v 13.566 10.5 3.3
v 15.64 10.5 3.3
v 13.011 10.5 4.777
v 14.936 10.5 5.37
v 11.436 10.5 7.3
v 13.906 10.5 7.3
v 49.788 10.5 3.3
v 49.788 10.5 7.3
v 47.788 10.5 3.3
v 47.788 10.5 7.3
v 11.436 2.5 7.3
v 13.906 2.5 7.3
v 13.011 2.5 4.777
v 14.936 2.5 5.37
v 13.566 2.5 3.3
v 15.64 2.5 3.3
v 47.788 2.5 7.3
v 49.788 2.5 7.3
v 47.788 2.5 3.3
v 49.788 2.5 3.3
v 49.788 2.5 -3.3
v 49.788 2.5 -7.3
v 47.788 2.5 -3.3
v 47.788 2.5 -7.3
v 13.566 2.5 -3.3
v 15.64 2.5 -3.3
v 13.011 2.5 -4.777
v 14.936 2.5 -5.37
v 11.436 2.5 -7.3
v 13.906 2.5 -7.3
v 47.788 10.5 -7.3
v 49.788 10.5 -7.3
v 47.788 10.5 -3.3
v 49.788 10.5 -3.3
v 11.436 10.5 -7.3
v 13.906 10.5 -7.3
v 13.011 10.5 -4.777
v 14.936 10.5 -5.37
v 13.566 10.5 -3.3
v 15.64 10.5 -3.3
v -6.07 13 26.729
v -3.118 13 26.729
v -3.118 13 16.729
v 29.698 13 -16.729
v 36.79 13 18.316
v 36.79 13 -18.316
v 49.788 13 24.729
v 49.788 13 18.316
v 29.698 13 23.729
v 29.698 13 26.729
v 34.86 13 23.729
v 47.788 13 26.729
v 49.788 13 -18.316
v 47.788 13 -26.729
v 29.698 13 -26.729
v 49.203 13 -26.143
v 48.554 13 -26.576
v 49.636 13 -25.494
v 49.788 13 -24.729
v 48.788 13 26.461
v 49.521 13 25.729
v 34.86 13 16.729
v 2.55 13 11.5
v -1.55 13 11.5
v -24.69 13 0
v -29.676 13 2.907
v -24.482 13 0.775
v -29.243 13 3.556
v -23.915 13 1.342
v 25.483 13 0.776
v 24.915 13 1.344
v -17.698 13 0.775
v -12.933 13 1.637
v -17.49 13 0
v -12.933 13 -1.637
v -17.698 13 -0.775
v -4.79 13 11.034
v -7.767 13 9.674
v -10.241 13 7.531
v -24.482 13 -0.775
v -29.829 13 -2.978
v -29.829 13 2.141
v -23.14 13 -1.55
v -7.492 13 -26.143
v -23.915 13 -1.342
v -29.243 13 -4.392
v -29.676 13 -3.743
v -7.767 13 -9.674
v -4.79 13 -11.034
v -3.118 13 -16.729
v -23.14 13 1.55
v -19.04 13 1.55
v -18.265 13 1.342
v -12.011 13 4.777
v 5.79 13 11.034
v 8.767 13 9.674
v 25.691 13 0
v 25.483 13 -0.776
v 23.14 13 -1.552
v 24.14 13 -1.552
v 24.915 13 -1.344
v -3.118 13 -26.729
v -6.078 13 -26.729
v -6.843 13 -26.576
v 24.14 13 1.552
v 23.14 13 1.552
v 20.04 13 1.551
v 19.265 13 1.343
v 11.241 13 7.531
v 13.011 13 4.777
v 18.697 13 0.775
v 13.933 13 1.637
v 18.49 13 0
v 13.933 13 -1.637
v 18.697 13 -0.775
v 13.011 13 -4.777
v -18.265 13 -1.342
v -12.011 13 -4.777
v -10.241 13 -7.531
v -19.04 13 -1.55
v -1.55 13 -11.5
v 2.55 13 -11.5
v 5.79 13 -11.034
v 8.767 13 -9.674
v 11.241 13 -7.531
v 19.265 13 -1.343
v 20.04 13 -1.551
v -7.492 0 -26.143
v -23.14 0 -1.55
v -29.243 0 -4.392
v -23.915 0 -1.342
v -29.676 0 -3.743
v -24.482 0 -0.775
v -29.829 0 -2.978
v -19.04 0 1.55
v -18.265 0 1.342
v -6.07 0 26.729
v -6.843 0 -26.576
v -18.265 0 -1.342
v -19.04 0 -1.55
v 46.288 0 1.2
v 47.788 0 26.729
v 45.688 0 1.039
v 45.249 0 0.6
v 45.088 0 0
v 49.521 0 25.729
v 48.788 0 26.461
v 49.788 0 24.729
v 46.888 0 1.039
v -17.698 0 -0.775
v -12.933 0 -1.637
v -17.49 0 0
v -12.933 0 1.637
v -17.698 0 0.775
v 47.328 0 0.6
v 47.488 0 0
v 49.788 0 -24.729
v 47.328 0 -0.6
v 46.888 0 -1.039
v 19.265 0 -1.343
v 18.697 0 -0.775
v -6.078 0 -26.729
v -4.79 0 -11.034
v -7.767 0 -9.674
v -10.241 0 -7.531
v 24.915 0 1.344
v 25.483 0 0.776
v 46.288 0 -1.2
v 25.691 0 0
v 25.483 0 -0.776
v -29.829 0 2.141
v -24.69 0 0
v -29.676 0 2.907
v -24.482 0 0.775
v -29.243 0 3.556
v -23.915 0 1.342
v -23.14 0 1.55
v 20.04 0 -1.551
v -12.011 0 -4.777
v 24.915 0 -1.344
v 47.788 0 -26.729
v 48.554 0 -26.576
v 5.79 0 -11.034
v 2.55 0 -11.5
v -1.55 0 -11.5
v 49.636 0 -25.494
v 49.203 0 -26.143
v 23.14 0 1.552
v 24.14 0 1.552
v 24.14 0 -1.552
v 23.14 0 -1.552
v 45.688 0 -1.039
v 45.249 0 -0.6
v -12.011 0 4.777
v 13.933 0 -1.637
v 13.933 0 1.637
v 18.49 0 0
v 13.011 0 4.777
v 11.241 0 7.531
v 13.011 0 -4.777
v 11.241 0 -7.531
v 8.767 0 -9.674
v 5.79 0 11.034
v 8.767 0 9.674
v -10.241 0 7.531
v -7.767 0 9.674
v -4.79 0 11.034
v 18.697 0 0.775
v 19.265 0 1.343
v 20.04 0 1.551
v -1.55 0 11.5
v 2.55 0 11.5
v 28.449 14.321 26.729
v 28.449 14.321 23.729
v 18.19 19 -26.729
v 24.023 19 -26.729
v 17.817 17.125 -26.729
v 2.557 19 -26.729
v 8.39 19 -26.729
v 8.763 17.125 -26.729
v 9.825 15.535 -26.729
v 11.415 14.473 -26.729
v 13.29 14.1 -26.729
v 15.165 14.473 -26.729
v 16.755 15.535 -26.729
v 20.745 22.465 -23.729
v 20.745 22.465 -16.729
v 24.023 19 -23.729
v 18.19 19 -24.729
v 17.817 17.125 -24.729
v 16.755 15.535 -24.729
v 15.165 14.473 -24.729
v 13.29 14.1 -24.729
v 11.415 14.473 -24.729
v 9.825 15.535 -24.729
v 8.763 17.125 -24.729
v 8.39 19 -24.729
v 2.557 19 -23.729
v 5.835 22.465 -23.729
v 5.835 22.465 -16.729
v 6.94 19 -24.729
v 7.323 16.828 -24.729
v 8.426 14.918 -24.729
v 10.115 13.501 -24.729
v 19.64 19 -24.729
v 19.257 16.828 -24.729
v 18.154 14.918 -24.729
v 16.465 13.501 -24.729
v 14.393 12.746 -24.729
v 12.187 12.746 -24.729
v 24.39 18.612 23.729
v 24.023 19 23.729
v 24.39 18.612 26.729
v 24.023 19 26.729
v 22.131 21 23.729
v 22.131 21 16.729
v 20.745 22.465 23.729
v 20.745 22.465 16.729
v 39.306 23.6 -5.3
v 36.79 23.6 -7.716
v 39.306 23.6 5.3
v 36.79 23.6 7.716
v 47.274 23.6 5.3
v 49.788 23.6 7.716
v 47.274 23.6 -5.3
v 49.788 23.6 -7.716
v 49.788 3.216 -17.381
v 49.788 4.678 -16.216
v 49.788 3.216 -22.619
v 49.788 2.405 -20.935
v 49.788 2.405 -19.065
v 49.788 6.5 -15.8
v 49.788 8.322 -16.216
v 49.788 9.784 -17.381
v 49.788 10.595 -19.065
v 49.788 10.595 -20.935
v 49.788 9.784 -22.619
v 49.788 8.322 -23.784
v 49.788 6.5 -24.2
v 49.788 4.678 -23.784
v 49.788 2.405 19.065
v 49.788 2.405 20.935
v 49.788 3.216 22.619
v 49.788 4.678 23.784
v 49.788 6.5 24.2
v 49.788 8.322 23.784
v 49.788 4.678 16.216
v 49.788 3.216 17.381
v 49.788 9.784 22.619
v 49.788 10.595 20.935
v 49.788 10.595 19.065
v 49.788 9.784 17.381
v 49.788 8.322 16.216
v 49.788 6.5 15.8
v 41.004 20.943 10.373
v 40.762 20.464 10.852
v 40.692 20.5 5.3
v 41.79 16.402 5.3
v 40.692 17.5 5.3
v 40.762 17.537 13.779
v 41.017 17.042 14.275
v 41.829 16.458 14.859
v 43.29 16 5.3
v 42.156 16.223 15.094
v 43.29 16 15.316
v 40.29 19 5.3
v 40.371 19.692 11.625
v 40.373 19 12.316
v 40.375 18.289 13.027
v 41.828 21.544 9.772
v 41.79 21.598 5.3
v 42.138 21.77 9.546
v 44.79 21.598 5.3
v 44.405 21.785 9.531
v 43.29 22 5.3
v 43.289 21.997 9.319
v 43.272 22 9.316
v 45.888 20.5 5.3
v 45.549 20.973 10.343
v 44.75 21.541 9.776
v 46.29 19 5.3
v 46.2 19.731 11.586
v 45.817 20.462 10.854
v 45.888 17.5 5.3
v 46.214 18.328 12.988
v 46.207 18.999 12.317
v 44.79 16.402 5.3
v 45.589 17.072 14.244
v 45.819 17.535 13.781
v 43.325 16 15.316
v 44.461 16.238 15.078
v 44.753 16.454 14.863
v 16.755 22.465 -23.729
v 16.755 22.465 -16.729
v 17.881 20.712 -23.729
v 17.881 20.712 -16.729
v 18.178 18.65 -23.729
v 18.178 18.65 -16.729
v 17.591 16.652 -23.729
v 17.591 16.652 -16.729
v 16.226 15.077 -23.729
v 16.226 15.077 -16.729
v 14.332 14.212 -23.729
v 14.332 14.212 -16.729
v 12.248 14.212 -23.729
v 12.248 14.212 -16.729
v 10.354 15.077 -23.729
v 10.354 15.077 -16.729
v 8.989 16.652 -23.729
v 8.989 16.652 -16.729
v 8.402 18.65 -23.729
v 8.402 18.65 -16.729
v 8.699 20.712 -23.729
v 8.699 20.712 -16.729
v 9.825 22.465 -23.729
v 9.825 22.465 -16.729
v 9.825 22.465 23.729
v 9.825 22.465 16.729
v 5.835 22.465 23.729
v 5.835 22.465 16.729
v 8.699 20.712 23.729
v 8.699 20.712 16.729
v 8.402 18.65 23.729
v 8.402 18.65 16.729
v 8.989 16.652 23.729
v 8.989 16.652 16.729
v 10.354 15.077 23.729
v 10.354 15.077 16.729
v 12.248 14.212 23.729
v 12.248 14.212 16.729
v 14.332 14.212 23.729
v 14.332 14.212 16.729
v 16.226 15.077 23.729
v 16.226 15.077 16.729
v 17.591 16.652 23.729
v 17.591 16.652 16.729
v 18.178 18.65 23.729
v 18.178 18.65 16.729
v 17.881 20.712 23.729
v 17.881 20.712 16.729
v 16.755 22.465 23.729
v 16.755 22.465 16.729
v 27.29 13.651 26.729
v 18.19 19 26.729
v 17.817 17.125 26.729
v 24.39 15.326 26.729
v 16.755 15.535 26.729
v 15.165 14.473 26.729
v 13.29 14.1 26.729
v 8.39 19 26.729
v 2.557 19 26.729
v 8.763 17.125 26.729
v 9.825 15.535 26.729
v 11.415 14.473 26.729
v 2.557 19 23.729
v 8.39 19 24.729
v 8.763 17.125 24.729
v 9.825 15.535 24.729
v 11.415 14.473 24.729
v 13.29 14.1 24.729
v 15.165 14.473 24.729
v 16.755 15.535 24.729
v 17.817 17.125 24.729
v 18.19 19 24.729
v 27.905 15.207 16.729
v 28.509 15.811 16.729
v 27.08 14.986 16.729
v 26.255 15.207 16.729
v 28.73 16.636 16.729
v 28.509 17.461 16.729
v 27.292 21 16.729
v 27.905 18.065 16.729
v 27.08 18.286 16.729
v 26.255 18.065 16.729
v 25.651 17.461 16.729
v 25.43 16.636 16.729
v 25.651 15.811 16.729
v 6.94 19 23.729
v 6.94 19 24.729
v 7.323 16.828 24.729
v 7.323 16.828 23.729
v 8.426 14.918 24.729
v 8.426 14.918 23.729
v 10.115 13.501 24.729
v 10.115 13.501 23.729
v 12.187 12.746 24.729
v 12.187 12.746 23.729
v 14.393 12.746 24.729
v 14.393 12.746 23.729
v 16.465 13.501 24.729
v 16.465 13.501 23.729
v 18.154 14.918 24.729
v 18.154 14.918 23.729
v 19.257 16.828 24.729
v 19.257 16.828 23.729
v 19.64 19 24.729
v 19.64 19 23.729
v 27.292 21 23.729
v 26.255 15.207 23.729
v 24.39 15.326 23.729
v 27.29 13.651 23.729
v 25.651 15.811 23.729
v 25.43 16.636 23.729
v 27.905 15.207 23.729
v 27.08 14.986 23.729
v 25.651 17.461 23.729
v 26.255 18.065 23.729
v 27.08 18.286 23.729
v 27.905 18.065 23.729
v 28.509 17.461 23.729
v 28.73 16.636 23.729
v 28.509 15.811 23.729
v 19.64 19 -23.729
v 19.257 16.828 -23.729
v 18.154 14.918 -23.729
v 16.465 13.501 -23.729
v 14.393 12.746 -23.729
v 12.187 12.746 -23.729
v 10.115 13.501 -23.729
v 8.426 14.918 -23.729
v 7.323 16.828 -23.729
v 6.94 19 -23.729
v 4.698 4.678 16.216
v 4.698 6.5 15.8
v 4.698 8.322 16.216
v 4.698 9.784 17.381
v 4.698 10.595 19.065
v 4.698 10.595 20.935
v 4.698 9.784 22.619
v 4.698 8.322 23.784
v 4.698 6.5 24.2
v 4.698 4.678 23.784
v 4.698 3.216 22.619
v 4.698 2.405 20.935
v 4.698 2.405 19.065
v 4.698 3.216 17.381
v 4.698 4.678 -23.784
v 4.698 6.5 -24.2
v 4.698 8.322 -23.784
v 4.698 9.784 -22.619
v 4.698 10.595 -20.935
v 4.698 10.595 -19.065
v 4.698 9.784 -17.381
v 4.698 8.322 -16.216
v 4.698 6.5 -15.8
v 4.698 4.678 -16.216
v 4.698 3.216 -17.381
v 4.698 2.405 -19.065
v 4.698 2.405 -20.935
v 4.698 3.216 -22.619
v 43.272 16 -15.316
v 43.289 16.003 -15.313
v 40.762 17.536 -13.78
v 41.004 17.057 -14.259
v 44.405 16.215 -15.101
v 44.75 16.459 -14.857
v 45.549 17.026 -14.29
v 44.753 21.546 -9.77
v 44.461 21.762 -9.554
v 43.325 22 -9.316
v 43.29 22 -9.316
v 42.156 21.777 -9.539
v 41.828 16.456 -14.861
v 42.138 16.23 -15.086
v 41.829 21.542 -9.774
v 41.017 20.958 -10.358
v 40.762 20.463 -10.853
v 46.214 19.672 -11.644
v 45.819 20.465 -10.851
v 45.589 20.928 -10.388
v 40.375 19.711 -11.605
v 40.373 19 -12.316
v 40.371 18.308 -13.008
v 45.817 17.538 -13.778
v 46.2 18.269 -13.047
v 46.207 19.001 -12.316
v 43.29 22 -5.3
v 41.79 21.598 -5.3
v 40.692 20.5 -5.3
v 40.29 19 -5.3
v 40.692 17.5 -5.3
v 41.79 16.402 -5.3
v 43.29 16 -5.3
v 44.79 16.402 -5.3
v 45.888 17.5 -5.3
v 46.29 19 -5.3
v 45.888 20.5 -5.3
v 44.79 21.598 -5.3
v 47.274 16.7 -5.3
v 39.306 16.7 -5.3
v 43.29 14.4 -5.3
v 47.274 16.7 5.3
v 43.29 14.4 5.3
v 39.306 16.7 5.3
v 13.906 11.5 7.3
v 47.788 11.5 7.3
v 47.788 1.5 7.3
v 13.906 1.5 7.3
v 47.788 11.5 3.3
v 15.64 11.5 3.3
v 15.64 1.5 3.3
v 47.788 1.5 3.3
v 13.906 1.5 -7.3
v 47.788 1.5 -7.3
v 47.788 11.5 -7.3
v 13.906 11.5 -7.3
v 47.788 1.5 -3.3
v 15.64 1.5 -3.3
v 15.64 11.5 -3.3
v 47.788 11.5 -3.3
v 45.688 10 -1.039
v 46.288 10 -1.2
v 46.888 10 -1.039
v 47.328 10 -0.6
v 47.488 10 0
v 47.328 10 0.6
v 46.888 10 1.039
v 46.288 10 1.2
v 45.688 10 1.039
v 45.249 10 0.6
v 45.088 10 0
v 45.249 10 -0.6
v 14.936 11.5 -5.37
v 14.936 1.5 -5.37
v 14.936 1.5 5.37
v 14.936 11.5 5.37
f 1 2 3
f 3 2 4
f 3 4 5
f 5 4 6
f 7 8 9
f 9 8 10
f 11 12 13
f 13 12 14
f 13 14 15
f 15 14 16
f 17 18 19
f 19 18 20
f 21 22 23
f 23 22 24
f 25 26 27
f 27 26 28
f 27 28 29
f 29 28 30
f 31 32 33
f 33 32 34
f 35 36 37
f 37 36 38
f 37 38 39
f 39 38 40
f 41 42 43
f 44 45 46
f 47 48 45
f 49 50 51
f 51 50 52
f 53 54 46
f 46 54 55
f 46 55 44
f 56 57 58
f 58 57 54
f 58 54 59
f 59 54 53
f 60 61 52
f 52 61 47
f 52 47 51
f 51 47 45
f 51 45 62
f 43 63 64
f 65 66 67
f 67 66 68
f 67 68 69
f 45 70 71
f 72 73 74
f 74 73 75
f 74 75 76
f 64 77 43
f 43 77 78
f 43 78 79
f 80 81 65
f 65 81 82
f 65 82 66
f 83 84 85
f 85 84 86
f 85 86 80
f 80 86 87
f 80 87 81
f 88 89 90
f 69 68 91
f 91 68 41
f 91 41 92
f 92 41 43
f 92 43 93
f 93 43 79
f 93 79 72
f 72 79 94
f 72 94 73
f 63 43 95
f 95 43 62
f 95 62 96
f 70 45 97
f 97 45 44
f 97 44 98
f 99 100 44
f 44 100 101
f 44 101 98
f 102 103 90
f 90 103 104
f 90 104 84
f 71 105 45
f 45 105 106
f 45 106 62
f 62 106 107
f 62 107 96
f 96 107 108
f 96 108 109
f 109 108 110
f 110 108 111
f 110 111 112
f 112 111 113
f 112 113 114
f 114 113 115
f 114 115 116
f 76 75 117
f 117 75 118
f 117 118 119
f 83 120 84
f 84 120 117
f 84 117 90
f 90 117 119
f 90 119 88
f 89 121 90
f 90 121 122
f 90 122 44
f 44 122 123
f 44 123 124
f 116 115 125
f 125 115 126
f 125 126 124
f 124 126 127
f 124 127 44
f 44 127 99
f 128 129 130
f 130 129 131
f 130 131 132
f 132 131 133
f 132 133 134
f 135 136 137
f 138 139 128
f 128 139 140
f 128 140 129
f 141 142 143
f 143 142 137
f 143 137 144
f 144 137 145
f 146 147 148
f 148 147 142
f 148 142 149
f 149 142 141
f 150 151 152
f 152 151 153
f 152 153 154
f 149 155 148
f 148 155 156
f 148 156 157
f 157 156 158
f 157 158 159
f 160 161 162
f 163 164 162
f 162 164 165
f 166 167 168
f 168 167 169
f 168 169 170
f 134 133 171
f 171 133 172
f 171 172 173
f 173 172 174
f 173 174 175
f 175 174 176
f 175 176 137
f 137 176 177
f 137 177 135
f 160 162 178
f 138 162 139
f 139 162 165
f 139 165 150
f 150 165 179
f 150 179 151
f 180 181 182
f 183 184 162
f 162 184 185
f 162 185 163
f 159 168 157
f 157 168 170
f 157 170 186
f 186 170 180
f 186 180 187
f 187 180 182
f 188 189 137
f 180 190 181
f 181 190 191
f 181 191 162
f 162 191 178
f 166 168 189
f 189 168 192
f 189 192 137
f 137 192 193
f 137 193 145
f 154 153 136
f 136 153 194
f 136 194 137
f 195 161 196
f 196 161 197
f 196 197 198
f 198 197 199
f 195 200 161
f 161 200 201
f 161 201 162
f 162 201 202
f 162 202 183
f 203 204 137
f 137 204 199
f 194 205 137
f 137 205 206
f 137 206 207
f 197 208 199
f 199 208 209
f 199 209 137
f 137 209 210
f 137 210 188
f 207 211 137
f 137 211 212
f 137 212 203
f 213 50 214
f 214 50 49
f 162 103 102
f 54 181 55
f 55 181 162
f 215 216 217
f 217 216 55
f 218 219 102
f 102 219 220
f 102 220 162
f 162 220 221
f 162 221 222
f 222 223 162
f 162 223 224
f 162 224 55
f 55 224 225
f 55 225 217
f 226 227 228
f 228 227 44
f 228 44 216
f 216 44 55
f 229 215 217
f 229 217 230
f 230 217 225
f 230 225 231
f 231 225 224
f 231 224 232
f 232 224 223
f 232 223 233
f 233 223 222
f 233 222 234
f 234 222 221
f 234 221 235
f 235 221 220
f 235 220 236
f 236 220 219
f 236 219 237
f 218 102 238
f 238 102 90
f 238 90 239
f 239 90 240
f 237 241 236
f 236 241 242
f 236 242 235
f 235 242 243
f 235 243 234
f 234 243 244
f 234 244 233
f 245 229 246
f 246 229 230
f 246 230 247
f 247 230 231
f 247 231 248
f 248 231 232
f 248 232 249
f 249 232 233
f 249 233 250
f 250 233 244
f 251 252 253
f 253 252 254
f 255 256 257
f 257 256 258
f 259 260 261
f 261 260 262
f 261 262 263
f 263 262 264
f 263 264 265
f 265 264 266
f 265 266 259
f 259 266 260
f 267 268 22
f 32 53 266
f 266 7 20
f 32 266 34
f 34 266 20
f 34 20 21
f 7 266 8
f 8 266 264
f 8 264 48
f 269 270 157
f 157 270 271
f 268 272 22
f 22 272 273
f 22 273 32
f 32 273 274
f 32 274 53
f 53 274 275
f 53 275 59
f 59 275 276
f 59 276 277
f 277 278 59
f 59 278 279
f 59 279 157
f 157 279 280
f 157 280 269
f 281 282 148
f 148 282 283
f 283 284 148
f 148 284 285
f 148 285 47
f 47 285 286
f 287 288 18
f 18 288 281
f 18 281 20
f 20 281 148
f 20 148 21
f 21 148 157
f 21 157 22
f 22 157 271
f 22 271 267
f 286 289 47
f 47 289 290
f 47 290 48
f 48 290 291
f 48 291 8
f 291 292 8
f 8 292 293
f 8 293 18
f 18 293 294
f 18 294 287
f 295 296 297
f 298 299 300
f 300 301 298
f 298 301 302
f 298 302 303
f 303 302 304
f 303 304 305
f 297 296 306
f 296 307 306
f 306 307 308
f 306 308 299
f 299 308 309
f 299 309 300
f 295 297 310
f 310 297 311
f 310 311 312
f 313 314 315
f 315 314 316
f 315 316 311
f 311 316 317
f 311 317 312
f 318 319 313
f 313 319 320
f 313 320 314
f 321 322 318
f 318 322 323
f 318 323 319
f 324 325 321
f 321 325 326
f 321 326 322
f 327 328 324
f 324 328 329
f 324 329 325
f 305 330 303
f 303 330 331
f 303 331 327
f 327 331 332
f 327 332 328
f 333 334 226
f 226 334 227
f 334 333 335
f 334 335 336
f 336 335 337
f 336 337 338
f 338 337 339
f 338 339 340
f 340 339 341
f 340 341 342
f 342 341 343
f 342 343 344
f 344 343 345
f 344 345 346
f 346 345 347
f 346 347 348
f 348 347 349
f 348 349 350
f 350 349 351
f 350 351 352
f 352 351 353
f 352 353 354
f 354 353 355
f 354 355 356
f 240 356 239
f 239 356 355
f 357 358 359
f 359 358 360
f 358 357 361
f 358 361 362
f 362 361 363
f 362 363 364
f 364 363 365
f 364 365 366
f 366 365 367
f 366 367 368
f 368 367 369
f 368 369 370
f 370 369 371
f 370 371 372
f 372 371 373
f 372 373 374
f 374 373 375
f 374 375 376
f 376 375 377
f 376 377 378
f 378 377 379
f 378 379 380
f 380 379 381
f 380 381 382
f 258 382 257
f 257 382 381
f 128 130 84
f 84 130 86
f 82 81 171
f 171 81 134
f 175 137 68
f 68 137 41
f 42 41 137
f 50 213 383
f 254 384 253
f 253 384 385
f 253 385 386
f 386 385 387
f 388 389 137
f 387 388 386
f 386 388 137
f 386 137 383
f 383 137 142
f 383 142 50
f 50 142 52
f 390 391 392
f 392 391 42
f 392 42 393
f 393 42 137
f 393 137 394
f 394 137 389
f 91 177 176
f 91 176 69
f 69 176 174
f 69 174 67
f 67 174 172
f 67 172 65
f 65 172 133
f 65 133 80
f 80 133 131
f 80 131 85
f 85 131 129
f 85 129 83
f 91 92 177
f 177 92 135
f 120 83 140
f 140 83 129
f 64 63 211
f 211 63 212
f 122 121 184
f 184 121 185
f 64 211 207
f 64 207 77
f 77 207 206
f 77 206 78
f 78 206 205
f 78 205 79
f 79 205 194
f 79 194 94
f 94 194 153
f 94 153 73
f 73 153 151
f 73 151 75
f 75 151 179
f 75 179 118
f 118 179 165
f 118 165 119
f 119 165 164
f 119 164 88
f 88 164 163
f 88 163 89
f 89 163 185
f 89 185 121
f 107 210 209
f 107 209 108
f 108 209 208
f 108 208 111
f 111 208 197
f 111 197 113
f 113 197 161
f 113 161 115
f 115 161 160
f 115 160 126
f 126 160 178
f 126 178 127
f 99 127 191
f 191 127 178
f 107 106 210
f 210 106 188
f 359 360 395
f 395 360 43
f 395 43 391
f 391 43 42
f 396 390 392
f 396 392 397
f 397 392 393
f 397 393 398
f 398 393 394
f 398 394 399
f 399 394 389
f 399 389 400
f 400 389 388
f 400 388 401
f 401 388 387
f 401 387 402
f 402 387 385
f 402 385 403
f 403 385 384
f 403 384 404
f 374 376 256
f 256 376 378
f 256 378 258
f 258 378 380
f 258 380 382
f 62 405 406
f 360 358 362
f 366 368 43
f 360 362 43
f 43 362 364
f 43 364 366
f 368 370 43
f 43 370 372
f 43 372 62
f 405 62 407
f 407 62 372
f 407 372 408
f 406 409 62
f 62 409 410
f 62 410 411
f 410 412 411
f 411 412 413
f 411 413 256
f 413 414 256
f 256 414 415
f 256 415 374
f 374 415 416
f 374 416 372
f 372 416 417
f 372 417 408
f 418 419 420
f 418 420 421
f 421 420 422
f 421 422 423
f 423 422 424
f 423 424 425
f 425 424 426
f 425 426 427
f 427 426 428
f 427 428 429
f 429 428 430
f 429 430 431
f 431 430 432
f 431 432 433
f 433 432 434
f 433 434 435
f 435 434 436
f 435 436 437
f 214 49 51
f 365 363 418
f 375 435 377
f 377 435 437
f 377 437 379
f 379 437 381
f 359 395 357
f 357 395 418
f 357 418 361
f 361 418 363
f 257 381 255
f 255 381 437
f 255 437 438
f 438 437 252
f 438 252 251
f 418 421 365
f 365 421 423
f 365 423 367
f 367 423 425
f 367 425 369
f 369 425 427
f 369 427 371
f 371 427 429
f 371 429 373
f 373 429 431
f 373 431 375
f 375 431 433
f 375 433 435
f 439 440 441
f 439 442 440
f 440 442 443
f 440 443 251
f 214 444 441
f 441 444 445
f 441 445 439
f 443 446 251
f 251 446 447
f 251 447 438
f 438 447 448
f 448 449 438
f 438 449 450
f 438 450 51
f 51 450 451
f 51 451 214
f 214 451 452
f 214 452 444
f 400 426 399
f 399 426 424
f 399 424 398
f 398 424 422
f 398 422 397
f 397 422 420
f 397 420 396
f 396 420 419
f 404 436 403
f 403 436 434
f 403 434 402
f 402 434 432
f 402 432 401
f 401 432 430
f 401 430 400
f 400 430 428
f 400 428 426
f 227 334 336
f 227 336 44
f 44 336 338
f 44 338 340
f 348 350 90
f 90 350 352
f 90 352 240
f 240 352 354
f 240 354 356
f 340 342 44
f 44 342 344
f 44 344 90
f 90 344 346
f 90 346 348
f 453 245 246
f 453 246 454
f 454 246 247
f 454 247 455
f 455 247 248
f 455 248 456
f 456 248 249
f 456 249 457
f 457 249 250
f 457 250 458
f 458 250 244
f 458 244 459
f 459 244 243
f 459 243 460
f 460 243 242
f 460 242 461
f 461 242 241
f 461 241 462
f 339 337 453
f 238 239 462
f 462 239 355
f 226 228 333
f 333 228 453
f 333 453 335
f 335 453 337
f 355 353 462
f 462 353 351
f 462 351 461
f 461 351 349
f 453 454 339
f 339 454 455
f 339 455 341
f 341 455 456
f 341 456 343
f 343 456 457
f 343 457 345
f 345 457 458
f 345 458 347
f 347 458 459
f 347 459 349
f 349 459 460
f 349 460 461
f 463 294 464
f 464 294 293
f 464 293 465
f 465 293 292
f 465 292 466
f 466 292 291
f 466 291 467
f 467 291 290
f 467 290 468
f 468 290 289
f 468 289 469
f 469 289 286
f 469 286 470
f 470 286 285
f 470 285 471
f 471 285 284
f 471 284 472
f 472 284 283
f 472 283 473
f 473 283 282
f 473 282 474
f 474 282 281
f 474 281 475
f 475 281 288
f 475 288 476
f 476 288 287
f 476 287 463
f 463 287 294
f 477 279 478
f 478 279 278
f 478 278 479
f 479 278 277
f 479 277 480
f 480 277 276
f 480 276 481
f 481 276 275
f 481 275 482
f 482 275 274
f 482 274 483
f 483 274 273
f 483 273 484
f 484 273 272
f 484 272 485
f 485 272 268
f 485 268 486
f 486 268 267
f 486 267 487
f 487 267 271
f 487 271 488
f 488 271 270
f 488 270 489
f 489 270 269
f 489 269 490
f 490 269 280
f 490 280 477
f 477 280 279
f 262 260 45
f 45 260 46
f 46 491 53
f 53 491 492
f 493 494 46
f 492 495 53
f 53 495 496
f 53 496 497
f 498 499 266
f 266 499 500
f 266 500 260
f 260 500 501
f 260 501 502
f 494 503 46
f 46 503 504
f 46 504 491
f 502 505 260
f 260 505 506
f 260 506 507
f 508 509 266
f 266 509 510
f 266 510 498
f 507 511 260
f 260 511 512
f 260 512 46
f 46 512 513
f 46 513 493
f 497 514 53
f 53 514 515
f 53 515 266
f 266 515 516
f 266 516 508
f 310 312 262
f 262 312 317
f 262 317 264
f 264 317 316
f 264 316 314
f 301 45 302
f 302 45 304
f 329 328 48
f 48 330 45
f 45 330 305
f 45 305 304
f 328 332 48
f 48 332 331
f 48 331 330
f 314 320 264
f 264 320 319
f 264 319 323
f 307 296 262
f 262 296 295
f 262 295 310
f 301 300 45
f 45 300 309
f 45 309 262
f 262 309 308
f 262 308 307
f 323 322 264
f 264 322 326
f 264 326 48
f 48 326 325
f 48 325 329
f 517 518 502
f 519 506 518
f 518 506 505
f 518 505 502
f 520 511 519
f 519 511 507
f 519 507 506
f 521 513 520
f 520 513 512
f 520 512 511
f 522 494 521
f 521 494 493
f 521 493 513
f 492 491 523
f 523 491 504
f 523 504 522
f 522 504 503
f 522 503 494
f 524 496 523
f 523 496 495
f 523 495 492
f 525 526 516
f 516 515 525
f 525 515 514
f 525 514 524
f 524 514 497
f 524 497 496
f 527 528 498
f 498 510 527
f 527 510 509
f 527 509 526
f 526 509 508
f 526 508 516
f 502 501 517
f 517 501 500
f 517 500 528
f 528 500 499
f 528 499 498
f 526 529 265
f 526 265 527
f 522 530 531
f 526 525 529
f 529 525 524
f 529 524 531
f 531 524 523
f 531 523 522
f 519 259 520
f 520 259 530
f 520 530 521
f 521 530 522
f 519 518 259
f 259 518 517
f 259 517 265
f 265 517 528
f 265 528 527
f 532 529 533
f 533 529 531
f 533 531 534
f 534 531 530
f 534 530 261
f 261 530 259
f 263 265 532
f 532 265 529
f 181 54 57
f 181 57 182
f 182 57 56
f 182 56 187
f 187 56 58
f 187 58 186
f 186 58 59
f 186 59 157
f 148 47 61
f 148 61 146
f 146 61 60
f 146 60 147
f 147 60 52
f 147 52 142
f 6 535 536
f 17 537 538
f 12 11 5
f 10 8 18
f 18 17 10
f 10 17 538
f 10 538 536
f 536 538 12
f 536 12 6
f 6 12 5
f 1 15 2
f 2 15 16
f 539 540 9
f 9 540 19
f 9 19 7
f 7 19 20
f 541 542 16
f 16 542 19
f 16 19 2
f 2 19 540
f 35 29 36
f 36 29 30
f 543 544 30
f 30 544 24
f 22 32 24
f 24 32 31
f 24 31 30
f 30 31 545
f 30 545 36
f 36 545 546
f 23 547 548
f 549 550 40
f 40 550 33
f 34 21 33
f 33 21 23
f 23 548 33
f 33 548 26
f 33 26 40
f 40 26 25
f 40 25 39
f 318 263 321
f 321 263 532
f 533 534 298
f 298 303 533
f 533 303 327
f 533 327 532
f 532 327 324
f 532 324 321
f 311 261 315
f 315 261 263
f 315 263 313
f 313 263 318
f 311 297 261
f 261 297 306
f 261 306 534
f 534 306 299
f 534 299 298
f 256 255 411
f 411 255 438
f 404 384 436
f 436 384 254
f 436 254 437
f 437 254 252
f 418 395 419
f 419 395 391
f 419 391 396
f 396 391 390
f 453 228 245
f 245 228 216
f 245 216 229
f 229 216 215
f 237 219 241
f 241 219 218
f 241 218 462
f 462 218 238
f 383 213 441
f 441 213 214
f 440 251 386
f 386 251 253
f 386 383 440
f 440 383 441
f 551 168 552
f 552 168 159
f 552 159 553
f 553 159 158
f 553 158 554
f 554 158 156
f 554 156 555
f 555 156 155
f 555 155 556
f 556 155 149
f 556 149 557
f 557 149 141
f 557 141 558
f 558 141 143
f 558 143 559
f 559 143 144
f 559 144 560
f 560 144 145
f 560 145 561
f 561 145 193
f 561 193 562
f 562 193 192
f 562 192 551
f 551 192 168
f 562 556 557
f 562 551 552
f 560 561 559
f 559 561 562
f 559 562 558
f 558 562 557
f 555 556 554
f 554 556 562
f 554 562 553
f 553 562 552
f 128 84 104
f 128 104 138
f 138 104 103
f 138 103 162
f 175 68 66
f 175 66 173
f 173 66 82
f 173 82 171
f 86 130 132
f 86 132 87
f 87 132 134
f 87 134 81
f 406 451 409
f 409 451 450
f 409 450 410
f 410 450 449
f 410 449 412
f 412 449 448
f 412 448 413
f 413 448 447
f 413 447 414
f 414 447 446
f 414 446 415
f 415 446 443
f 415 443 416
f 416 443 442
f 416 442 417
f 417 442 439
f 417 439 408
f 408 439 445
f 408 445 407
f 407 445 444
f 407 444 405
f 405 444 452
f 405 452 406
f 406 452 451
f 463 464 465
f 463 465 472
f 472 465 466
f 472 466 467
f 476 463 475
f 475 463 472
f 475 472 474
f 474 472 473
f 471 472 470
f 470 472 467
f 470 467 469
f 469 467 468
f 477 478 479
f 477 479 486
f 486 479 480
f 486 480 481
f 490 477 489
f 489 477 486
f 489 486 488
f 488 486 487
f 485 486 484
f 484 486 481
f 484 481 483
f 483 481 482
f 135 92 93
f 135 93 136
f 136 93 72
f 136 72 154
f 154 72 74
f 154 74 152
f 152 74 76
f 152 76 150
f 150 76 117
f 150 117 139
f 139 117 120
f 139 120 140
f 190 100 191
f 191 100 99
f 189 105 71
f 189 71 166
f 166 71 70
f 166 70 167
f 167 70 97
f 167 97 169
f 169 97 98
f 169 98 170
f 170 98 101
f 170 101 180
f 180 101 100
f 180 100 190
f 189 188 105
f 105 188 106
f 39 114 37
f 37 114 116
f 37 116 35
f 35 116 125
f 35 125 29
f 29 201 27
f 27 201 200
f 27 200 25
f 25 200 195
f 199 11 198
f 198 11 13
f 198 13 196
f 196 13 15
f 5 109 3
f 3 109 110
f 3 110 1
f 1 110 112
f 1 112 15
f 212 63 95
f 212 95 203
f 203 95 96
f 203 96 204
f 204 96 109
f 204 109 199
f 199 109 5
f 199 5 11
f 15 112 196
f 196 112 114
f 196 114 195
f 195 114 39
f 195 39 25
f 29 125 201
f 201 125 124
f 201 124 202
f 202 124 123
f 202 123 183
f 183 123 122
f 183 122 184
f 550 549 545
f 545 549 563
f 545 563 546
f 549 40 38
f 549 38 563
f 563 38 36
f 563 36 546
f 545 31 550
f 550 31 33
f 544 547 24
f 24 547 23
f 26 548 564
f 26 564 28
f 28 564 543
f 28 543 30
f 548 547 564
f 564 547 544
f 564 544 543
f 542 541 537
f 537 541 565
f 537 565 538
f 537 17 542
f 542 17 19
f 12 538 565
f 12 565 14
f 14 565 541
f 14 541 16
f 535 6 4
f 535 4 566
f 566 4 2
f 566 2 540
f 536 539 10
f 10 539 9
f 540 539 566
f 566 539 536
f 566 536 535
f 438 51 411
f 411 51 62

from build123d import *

# Parameters (mm, degrees)
BOSS_EXTRUDE2_DEPTH      = 13
CUT_EXTRUDE6_DEPTH       = 43.108996013
CUT_EXTRUDE7_DEPTH       = 43.108996013
CUT_EXTRUDE8_DEPTH       = 13
SKETCH7_R                = 4.2
CUT_EXTRUDE9_DEPTH       = 30
BOSS_EXTRUDE3_DEPTH      = 10
CUT_EXTRUDE10_DEPTH      = 1
SKETCH13_R               = 4.2
BOSS_EXTRUDE4_DEPTH      = 20.09
SKETCH17_W               = 13
SKETCH17_H               = 15.432451
BOSS_EXTRUDE5_DEPTH      = 10.6
CHAMFER1_SIZE            = 10.6
SKETCH12_R               = 3
CUT_EXTRUDE11_DEPTH      = 77.770333281
CUT_EXTRUDE12_START      = -6.148636
CUT_EXTRUDE12_DEPTH      = 5.3
FILLET2_R                = 2
SKETCH25_W               = 86.308607618
SKETCH25_H               = 69.103285455
CUT_EXTRUDE13_DEPTH      = 0.00151491
CUT_EXTRUDE14_DEPTH      = 58.985456967
CUT_EXTRUDE15_REACH      = 89.237
CUT_EXTRUDE15_END_RADIUS = 11.5
SKETCH27_W               = 4
SKETCH27_H               = 8
SKETCH30_W               = 15.219906176
SKETCH30_H               = 7
BOSS_EXTRUDE6_DEPTH      = 8
SKETCH28_W               = 26.149590075
SKETCH28_H               = 8.463351347
CUT_EXTRUDE16_DEPTH      = 3
CUT_EXTRUDE17_DEPTH      = 3
SKETCH33_R               = 1.2
CUT_EXTRUDE19_DEPTH      = 10
FILLET9_R                = 2
SKETCH32_R               = 1.65
CUT_EXTRUDE20_DEPTH      = 10
SKETCH34_R               = 4.2
BOSS_EXTRUDE7_DEPTH      = 5
CUT_EXTRUDE22_START      = -13
CUT_EXTRUDE22_DEPTH      = 13
CUT_EXTRUDE23_DEPTH      = 58.985456967
CUT_EXTRUDE24_START      = -1
CUT_EXTRUDE24_DEPTH      = 10
CUT_EXTRUDE25_REACH      = 76.711


# Read off the part's stored shape, not the designer's step: Cut-Extrude22
with BuildPart() as part:
    # Sketch1 → Boss-Extrude2 (new body)
    with BuildSketch(Plane(origin=(0, 0, 0), x_dir=(1, 0, 0), z_dir=(0, 1, 0))):
        Polygon((-2.969848481, 26.728636329), (-6.906313813, 26.728636329), (-29.828636329, 3.806313813), (-29.828636329, -2.969848481), (-6.069848481, -26.728636329), (-2.969848481, -26.728636329), (2.969848481, -26.728636329), (29.69848481, -26.728636329), (29.69848481, 26.728636329), (2.969848481, 26.728636329), align=None)
    extrude(amount=BOSS_EXTRUDE2_DEPTH)

    # Sketch1<8> → Cut-Extrude6 (cut, through all)
    with BuildSketch(Plane(origin=(0, 0, 0), x_dir=(1, 0, 0), z_dir=(0, 1, 0))):
        with BuildLine():
            Line((-23.14, -1.55), (-20.04, -1.55))
            ThreePointArc((-20.04, -1.55), (-18.49, 0), (-20.04, 1.55))
            Line((-20.04, 1.55), (-23.14, 1.55))
            ThreePointArc((-23.14, 1.55), (-24.69, 0), (-23.14, -1.55))
        make_face()
    extrude(amount=CUT_EXTRUDE6_DEPTH, mode=Mode.SUBTRACT)

    # Sketch1<9> → Cut-Extrude7 (cut, through all)
    with BuildSketch(Plane(origin=(0, 0, 0), x_dir=(1, 0, 0), z_dir=(0, 1, 0))):
        with BuildLine():
            Line((9.28999972, -8.505433812), (9.28999972, 8.505433812))
            ThreePointArc((9.28999972, 8.505433812), (5.69954884, 10.725261974), (1.55, 11.5))
            Line((1.55, 11.5), (-1.55, 11.5))
            ThreePointArc((-1.55, 11.5), (-13.05, 0), (-1.55, -11.5))
            Line((-1.55, -11.5), (1.55, -11.5))
            ThreePointArc((1.55, -11.5), (5.69954884, -10.725261974), (9.28999972, -8.505433812))
        make_face()
        with BuildLine():
            ThreePointArc((9.28999972, -8.505433812), (13.05, 0), (9.28999972, 8.505433812))
            Line((9.28999972, 8.505433812), (9.28999972, -8.505433812))
        make_face()
    extrude(amount=CUT_EXTRUDE7_DEPTH, mode=Mode.SUBTRACT)

    # Sketch1<11> → Cut-Extrude8 (cut)
    with BuildSketch(Plane(origin=(0, 0, 0), x_dir=(1, 0, 0), z_dir=(0, 1, 0))):
        with BuildLine():
            Line((23.139619127, 1.551521906), (20.03999972, 1.550761))
            ThreePointArc((20.03999972, 1.550761), (18.48961936, 0), (20.03999972, -1.550761))
            Line((20.03999972, -1.550761), (23.14, -1.551521999))
            ThreePointArc((23.14, -1.551521999), (24.691521964, 0.000190413), (23.139619127, 1.551521906))
        make_face()
        with BuildLine():
            ThreePointArc((21.589619103, -0.059493857), (21.588478024, -1.2e-08), (21.589619104, 0.059493833))
            ThreePointArc((21.589619104, 0.059493833), (21.590760744, -1.2e-08), (21.589619103, -0.059493857))
        make_face(mode=Mode.SUBTRACT)
    extrude(amount=CUT_EXTRUDE8_DEPTH, mode=Mode.SUBTRACT)


with BuildPart() as cut_extrude8_piece_1:
    # of the separate pieces the step leaves, piece 1, a body of its own (cut_extrude8_pieces)
    add(part.part.solids().sort_by_distance((-6.906313813, 0, -26.728636329))[0])

    # Sketch7 → Cut-Extrude9 (cut)
    with BuildSketch(Plane(origin=(29.69848481, 0, 0), x_dir=(0, 0, -1), z_dir=(1, 0, 0))):
        with Locations((-20, 6.5)):
            Circle(SKETCH7_R)
        with Locations((20, 6.5)):
            Circle(SKETCH7_R)
    extrude(amount=-CUT_EXTRUDE9_DEPTH, mode=Mode.SUBTRACT)

    # Sketch9 → Boss-Extrude3 (add)
    with BuildSketch(Plane.XY.offset(26.728636329)):
        with BuildLine():
            Line((-3.11848537, 13), (29.69848481, 13))
            Line((29.69848481, 13), (20.745211893, 22.464823228))
            Line((20.745211893, 22.464823228), (16.754822948, 22.464823228))
            ThreePointArc((16.754822948, 22.464823228), (13.28999972, 14.1), (9.825176492, 22.464823228))
            Line((9.825176492, 22.464823228), (5.834787547, 22.464823228))
            Line((5.834787547, 22.464823228), (-3.11848537, 13))
        make_face()
    boss_extrude3 = extrude(amount=-BOSS_EXTRUDE3_DEPTH)

    # Sketch10 → Cut-Extrude10 (cut)
    with BuildSketch(Plane.XY.offset(24.728636329)):
        with BuildLine():
            Line((6.93999972, 19), (6.93999972, 29.430631577))
            Line((6.93999972, 29.430631577), (19.63999972, 29.430631577))
            Line((19.63999972, 29.430631577), (19.63999972, 19))
            ThreePointArc((19.63999972, 19), (13.28999972, 12.65), (6.93999972, 19))
        make_face()
    cut_extrude10 = extrude(amount=-CUT_EXTRUDE10_DEPTH, mode=Mode.SUBTRACT)

    # Mirror1: Boss-Extrude3, Cut-Extrude10 across plane
    add(boss_extrude3.mirror(Plane.XY))
    add(cut_extrude10.mirror(Plane.XY), mode=Mode.SUBTRACT)

    # Sketch13 → Boss-Extrude4 (add)
    with BuildSketch(Plane(origin=(29.69848481, 0, 0), x_dir=(0, 0, -1), z_dir=(1, 0, 0))):
        Polygon((-26.728636329, 0), (26.728636329, 0), (26.728636329, 13), (16.728636329, 13), (-16.728636329, 13), (-26.728636329, 13), align=None)
        with Locations((-20, 6.5)):
            Circle(SKETCH13_R, mode=Mode.SUBTRACT)
        with Locations((20, 6.5)):
            Circle(SKETCH13_R, mode=Mode.SUBTRACT)
    extrude(amount=BOSS_EXTRUDE4_DEPTH)

    # Sketch17 → Boss-Extrude5 (add)
    with BuildSketch(Plane(origin=(0, 13, 0), x_dir=(1, 0, 0), z_dir=(0, 1, 0))):
        with Locations((43.28999972, 0)):
            Rectangle(SKETCH17_W, SKETCH17_H)
    extrude(amount=BOSS_EXTRUDE5_DEPTH)

    # Chamfer1
    # the kernel refuses this chamfer: 10.6 mm, written as the material it adds along each edge
    with BuildSketch(Plane(origin=(49.78848481, 13, 7.7162255), x_dir=(0, -0.027495876610586376, 0.9996219169112966), z_dir=(-1, 0, 0)), Plane(origin=(36.78999972, 13, -7.7162255), x_dir=(0, -0.02749587661058638, -0.9996219169112966), z_dir=(1, 0, 0))) as chamfer1_piece_1:
        Polygon((CHAMFER1_SIZE * 0.999621916911, CHAMFER1_SIZE * 0.0274958766106), (-CHAMFER1_SIZE * 0.0274958766106, CHAMFER1_SIZE * 0.999621916911), (0, 0), align=None)
    extrude(amount=12.99848509)

    # Sketch12 → Cut-Extrude11 (cut, through all)
    with BuildSketch(Plane.XY.offset(26.728636329)):
        with Locations(Location((43.28999972, 19, 0), (0, 0, 270))):
            Circle(SKETCH12_R)
    extrude(amount=-CUT_EXTRUDE11_DEPTH, mode=Mode.SUBTRACT)

    # Sketch24 → Cut-Extrude12 (cut)
    with BuildSketch(Plane.XY.offset(6.148636329).offset(CUT_EXTRUDE12_START)):
        Polygon((47.273716577, 23.6), (47.273716577, 21.3), (47.273716577, 16.7), (43.28999972, 14.4), (39.306282862, 16.7), (39.306282862, 21.3), (39.306282862, 23.6), align=None)
    cut_extrude12 = extrude(amount=-CUT_EXTRUDE12_DEPTH, mode=Mode.SUBTRACT)

    # Fillet2
    fillet2_edges = [cut_extrude8_piece_1.edges().sort_by_distance(p)[0] for p in [
        (49.78848481, 6.5, 26.728636329),
        (49.78848481, 6.5, -26.728636329),
    ]]
    fillet(fillet2_edges, radius=FILLET2_R)

    # Sketch25 → Cut-Extrude13 (cut)
    with BuildSketch(Plane(origin=(49.78999972, 0, 0), x_dir=(0, 0, -1), z_dir=(1, 0, 0))):
        with Locations((0, 8.901936044)):
            Rectangle(SKETCH25_W, SKETCH25_H)
    extrude(amount=-CUT_EXTRUDE13_DEPTH, mode=Mode.SUBTRACT)

    # Cut-Extrude15: up to this cylinder (the profile starts outside it)
    cut_extrude15_end = Plane(origin=(1.55, 6.5, 0), z_dir=(0, -1, 0)) * Cylinder(CUT_EXTRUDE15_END_RADIUS, 202.474, mode=Mode.PRIVATE)
    # Sketch27 → Cut-Extrude15 (cut, up to the surface)
    with BuildSketch(Plane(origin=(49.78848481, 0, 0), x_dir=(0, 0, -1), z_dir=(1, 0, 0)), mode=Mode.PRIVATE) as cut_extrude15_sk1:
        with Locations((-5.3, 6.5)):
            Rectangle(SKETCH27_W, SKETCH27_H)
    cut_extrude15_tool1 = extrude(cut_extrude15_sk1.sketch, amount=-CUT_EXTRUDE15_REACH, mode=Mode.PRIVATE) - cut_extrude15_end
    cut_extrude15 = cut_extrude15_tool1.solids().sort_by_distance((49.788485, 6.5, 5.3))[0]
    add(cut_extrude15, mode=Mode.SUBTRACT)

    # Mirror2: Cut-Extrude15 across plane
    add(cut_extrude15.mirror(Plane.XY), mode=Mode.SUBTRACT)

    # Mirror3: Cut-Extrude12 across plane
    add(cut_extrude12.mirror(Plane.XY), mode=Mode.SUBTRACT)

    # Sketch30 → Boss-Extrude6 (add)
    with BuildSketch(Plane(origin=(0, 13, 0), x_dir=(1, 0, 0), z_dir=(0, 1, 0))):
        with Locations((27.249952808, -20.228636329)):
            Rectangle(SKETCH30_W, SKETCH30_H)
    extrude(amount=BOSS_EXTRUDE6_DEPTH)

    # Sketch28 → Cut-Extrude16 (cut)
    with BuildSketch(Plane.XY.offset(26.728636329)):
        with Locations((11.690030011, 23.231675673)):
            Rectangle(SKETCH28_W, SKETCH28_H)
    cut_extrude16 = extrude(amount=-CUT_EXTRUDE16_DEPTH, mode=Mode.SUBTRACT)

    # Mirror4: Cut-Extrude16 across plane
    add(cut_extrude16.mirror(Plane.XY), mode=Mode.SUBTRACT)

    # Sketch31 → Cut-Extrude17 (cut)
    with BuildSketch(Plane.XY.offset(26.728636329)):
        Polygon((27.28999972, 20.348631561), (24.38999972, 18.674315781), (24.38999972, 15.325684219), (27.28999972, 13.651368439), (30.18999972, 15.325684219), (30.18999972, 18.674315781), align=None)
    extrude(amount=-CUT_EXTRUDE17_DEPTH, mode=Mode.SUBTRACT)

    # Sketch33 → Cut-Extrude19 (cut)
    with BuildSketch(Plane.XZ):
        with Locations(Location((46.28848481, 0, 0), (0, 0, 270))):
            Circle(SKETCH33_R)
    extrude(amount=-CUT_EXTRUDE19_DEPTH, mode=Mode.SUBTRACT)

    # Fillet9
    fillet9_edges = [cut_extrude8_piece_1.edges().sort_by_distance(p)[0] for p in [
        (-6.906313813, 6.5, -26.728636329),
        (-29.828636329, 6.5, -3.806313813),
        (-29.828636329, 6.5, 2.969848481),
    ]]
    fillet(fillet9_edges, radius=FILLET9_R)

    # Sketch32 → Cut-Extrude20 (cut)
    with BuildSketch(Plane.XY.offset(23.728636329)):
        with Locations((27.079904605, 16.636104587)):
            Circle(SKETCH32_R)
    extrude(amount=-CUT_EXTRUDE20_DEPTH, mode=Mode.SUBTRACT)

    # Sketch34 → Boss-Extrude7 (add)
    with BuildSketch(Plane(origin=(-0.30151519, 0, 0), x_dir=(0, 0, -1), z_dir=(1, 0, 0))):
        with Locations((-20, 6.5)):
            Circle(SKETCH34_R)
        with Locations((20, 6.5)):
            Circle(SKETCH34_R)
    extrude(amount=BOSS_EXTRUDE7_DEPTH)

    # Cut-Extrude22 outline → Cut-Extrude22 (cut)
    with BuildSketch(Plane(origin=(0, 13, 0), x_dir=(1, 0, 0), z_dir=(0, 1, 0)).offset(CUT_EXTRUDE22_START)):
        with BuildLine():
            ThreePointArc((-20.04, 1.55), (-18.49, 0), (-20.04, -1.55))
            Line((-20.04, -1.55), (-19.04, -1.55))
            ThreePointArc((-19.04, -1.55), (-17.49, 0), (-19.04, 1.55))
            Line((-19.04, 1.55), (-20.04, 1.55))
        make_face()
        with BuildLine():
            Line((24.139625451, 1.551521906), (23.14, 1.551521953))
            ThreePointArc((23.14, 1.551521953), (24.691521976, -2.3e-08), (23.14, -1.551521999))
            Line((23.14, -1.551521999), (24.139751204, -1.551521977))
            ThreePointArc((24.139751204, -1.551521977), (25.691147394, 6.2838e-05), (24.139625451, 1.551521906))
        make_face()
    extrude(amount=CUT_EXTRUDE22_DEPTH, mode=Mode.SUBTRACT)

    # Sketch38 → Cut-Extrude23 (cut, through all)
    with BuildSketch(Plane(origin=(0, 13, 0), x_dir=(1, 0, 0), z_dir=(0, 1, 0))):
        with BuildLine():
            ThreePointArc((1.55, 11.5), (13.05, 0), (1.55, -11.5))
            Line((1.55, -11.5), (2.55, -11.5))
            ThreePointArc((2.55, -11.5), (14.05, 0), (2.55, 11.5))
            Line((2.55, 11.5), (1.55, 11.5))
        make_face()
    extrude(amount=-CUT_EXTRUDE23_DEPTH, mode=Mode.SUBTRACT)

    # Sketch39 → Cut-Extrude24 (cut)
    with BuildSketch(Plane(origin=(0, 2.5, 0), x_dir=(1, 0, 0), z_dir=(0, 1, 0)).offset(CUT_EXTRUDE24_START)):
        with BuildLine():
            Line((47.78848481, 7.3), (13.906055653, 7.3))
            ThreePointArc((13.906055653, 7.3), (14.935796911, 5.370478086), (15.640454538, 3.3))
            Line((15.640454538, 3.3), (47.78848481, 3.3))
            Line((47.78848481, 3.3), (47.78848481, 7.3))
        make_face()
        with BuildLine():
            Line((13.906055653, -7.3), (47.78848481, -7.3))
            Line((47.78848481, -7.3), (47.78848481, -3.3))
            Line((47.78848481, -3.3), (15.640454538, -3.3))
            ThreePointArc((15.640454538, -3.3), (14.935796911, -5.370478086), (13.906055653, -7.3))
        make_face()
    extrude(amount=CUT_EXTRUDE24_DEPTH, mode=Mode.SUBTRACT)

    # Sketch40 → Cut-Extrude25 (cut, up to next)
    with BuildSketch(Plane.XY.offset(23.728636329), mode=Mode.PRIVATE) as cut_extrude25_sk1:
        Polygon((34.859905896, 13), (27.29228613, 21), (34.859905896, 21), align=None)
    cut_extrude25_tool1 = extrude(cut_extrude25_sk1.sketch, amount=-CUT_EXTRUDE25_REACH, mode=Mode.PRIVATE) & cut_extrude8_piece_1.part
    add(cut_extrude25_tool1.solids().sort_by_distance((32.337366, 18.333333, 23.728636))[0], mode=Mode.SUBTRACT)


with BuildPart() as cut_extrude8_piece_2:
    # of the separate pieces the step leaves, piece 2, a body of its own (cut_extrude8_pieces)
    add(part.part.solids().sort_by_distance((21.589619104, 0, -0.059493833))[0])

    # Sketch26 → Cut-Extrude14 (cut, through all)
    with BuildSketch(Plane(origin=(0, 13, 0), x_dir=(1, 0, 0), z_dir=(0, 1, 0))):
        with BuildLine():
            ThreePointArc((21.589619104, 0.059493833), (21.588478024, -1.2e-08), (21.589619103, -0.059493857))
            ThreePointArc((21.589619103, -0.059493857), (21.590760744, -1.2e-08), (21.589619104, 0.059493833))
        make_face()
    extrude(amount=-CUT_EXTRUDE14_DEPTH, mode=Mode.SUBTRACT)


solid = cut_extrude8_piece_1.part
